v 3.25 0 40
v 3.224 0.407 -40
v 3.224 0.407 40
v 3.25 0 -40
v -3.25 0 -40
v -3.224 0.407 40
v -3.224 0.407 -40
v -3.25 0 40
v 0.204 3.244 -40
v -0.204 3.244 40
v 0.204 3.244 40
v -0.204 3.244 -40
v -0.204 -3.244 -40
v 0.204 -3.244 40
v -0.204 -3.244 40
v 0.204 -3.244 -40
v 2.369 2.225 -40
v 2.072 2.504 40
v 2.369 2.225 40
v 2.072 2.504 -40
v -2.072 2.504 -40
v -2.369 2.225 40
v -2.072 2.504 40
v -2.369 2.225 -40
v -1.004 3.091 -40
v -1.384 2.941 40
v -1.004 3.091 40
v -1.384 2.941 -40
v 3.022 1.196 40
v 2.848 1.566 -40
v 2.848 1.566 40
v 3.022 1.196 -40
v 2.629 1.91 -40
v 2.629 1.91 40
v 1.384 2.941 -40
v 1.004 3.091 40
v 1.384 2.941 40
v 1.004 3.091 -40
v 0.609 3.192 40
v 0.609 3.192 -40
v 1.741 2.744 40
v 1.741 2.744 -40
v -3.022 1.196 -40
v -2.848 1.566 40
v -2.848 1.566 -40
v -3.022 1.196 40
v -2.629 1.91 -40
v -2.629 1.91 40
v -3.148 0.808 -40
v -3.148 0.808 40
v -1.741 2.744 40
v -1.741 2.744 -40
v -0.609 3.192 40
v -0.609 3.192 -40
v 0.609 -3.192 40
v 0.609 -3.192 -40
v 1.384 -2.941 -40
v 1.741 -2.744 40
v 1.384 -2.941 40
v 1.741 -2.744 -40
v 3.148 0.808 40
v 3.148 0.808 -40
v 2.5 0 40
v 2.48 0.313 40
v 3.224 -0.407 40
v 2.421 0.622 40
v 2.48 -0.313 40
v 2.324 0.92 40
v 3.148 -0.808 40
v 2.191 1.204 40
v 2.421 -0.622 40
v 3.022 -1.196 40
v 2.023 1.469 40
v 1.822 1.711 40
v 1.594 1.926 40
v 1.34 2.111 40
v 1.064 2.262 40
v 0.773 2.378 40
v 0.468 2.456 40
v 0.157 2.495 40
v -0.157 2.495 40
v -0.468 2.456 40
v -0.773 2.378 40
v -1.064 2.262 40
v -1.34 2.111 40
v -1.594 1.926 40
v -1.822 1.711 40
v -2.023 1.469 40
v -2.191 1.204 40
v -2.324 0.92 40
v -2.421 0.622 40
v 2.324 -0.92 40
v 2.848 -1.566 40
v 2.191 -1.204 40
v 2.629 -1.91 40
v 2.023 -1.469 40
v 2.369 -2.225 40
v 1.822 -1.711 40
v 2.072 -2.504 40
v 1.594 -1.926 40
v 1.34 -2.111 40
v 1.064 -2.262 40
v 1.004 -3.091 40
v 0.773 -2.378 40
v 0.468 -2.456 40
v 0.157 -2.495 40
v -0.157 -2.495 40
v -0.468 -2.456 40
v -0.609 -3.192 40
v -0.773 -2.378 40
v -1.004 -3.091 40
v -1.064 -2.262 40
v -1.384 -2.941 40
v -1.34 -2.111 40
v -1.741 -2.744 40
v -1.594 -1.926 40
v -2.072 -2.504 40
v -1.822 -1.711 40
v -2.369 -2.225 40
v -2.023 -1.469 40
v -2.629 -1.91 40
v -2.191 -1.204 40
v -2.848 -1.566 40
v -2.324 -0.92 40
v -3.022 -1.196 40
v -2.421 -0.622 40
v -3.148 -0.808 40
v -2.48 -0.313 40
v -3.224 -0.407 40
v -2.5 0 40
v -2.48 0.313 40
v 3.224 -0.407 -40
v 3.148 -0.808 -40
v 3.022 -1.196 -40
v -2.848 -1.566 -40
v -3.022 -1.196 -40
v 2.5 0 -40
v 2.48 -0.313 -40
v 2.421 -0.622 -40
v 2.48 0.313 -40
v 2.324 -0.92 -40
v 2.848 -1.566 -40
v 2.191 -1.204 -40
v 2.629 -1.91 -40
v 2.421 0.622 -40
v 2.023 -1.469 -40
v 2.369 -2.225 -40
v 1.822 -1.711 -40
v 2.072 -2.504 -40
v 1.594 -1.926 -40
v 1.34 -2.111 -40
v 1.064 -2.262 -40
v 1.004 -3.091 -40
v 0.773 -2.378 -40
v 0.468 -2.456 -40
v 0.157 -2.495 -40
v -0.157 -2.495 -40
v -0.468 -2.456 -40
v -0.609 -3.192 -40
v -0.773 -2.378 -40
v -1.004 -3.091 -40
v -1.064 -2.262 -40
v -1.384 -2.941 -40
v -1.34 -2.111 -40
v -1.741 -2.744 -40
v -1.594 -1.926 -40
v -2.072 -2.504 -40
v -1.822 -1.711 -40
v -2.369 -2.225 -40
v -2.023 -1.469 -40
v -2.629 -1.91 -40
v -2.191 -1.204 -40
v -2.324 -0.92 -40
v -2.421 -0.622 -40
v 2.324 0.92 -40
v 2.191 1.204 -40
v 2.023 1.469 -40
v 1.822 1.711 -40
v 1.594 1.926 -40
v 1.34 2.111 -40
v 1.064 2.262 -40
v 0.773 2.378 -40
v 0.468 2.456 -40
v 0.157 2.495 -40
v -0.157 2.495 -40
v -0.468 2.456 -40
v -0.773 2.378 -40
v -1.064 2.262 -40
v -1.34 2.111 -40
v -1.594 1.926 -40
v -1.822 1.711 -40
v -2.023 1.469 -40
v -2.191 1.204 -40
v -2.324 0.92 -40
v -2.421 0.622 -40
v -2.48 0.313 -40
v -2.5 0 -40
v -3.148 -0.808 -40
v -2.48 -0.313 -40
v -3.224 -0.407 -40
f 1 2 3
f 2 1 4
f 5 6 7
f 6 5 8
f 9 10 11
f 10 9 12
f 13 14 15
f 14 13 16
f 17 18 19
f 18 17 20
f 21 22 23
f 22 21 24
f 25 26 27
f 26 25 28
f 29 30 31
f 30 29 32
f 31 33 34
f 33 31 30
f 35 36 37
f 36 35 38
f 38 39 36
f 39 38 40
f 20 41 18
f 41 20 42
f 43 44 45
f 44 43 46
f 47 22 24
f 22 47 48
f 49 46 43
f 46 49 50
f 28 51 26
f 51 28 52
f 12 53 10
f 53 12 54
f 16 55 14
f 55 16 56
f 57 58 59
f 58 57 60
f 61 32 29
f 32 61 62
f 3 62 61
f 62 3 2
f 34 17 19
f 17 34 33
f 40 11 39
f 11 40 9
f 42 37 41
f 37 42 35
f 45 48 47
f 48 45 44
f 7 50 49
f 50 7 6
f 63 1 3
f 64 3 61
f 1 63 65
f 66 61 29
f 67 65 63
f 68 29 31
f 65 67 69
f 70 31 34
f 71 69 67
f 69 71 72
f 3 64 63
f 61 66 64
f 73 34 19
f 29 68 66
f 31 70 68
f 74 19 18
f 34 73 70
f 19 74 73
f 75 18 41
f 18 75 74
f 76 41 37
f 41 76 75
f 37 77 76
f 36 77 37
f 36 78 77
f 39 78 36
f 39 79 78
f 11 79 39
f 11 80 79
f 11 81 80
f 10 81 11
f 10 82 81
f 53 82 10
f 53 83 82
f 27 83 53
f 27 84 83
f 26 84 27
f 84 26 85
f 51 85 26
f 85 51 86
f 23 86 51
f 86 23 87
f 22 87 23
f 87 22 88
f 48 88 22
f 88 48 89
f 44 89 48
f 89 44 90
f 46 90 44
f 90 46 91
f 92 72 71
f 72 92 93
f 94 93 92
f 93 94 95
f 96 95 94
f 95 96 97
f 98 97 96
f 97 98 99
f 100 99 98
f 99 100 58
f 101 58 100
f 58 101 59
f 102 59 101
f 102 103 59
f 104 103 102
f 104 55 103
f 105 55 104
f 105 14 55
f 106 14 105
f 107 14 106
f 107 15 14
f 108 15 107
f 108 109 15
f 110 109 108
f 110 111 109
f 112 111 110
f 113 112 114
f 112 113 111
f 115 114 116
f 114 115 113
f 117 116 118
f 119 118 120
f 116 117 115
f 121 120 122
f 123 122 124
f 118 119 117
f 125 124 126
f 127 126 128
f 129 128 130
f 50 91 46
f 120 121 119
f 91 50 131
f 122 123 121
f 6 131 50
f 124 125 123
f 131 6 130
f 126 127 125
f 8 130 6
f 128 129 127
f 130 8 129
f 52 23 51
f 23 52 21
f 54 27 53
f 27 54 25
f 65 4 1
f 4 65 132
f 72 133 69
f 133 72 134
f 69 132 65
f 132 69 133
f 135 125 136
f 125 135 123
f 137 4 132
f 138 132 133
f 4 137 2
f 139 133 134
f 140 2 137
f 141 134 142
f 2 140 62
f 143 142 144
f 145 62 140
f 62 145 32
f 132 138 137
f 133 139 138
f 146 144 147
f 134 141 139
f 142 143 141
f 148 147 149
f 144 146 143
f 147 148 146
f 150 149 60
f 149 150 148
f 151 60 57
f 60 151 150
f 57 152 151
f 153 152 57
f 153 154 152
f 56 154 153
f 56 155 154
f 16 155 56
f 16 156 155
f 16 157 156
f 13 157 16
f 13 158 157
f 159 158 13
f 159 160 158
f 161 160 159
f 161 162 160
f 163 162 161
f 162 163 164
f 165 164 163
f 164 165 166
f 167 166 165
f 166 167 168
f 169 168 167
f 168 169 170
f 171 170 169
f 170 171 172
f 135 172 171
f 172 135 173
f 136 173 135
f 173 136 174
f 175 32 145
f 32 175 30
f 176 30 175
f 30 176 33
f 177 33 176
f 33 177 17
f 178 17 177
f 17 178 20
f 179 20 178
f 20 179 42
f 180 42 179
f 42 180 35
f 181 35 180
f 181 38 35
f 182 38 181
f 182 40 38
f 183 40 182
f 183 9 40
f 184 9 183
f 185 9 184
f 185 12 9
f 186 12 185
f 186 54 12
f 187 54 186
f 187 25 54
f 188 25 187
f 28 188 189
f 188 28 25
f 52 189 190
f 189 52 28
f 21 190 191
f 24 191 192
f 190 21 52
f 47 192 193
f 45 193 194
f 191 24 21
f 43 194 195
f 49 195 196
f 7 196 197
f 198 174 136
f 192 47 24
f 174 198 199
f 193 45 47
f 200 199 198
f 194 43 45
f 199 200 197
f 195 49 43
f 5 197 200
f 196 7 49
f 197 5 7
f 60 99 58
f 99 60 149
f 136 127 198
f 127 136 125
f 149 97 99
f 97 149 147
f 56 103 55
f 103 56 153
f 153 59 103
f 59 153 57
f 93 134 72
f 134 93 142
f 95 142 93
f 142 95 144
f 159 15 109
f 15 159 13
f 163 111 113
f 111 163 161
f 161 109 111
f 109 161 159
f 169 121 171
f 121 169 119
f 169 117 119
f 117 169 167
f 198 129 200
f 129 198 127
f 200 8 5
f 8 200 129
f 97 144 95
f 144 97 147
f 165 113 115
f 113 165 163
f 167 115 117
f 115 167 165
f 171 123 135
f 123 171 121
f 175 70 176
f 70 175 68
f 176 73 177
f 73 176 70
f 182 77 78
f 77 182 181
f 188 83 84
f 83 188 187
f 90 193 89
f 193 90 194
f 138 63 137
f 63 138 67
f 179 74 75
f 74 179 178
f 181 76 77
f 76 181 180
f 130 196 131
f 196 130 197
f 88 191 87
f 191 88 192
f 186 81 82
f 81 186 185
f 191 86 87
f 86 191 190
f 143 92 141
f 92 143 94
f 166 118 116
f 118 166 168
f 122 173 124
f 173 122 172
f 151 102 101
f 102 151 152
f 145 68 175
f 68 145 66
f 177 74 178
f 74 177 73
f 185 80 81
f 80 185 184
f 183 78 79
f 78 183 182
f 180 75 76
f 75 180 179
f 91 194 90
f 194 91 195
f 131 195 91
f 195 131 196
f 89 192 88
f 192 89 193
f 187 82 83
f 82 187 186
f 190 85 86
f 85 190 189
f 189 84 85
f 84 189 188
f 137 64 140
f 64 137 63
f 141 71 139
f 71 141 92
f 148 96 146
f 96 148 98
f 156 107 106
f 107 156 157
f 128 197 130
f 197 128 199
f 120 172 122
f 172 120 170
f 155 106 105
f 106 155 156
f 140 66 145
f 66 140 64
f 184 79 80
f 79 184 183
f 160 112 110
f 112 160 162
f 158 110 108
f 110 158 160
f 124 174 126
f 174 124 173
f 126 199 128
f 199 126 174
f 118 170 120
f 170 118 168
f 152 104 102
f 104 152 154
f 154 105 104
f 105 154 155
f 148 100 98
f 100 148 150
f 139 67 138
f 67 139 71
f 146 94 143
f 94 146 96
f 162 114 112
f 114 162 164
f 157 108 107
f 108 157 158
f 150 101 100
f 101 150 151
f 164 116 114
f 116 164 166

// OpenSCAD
$fn = 50;


difference() {
	union() {
		translate(v = [0, 0, -40.0000000000]) {
			cylinder(h = 80, r = 3.2500000000);
		}
	}
	union() {
		translate(v = [0, 0, -100.0000000000]) {
			cylinder(h = 200, r = 2.5000000000);
		}
	}
}
